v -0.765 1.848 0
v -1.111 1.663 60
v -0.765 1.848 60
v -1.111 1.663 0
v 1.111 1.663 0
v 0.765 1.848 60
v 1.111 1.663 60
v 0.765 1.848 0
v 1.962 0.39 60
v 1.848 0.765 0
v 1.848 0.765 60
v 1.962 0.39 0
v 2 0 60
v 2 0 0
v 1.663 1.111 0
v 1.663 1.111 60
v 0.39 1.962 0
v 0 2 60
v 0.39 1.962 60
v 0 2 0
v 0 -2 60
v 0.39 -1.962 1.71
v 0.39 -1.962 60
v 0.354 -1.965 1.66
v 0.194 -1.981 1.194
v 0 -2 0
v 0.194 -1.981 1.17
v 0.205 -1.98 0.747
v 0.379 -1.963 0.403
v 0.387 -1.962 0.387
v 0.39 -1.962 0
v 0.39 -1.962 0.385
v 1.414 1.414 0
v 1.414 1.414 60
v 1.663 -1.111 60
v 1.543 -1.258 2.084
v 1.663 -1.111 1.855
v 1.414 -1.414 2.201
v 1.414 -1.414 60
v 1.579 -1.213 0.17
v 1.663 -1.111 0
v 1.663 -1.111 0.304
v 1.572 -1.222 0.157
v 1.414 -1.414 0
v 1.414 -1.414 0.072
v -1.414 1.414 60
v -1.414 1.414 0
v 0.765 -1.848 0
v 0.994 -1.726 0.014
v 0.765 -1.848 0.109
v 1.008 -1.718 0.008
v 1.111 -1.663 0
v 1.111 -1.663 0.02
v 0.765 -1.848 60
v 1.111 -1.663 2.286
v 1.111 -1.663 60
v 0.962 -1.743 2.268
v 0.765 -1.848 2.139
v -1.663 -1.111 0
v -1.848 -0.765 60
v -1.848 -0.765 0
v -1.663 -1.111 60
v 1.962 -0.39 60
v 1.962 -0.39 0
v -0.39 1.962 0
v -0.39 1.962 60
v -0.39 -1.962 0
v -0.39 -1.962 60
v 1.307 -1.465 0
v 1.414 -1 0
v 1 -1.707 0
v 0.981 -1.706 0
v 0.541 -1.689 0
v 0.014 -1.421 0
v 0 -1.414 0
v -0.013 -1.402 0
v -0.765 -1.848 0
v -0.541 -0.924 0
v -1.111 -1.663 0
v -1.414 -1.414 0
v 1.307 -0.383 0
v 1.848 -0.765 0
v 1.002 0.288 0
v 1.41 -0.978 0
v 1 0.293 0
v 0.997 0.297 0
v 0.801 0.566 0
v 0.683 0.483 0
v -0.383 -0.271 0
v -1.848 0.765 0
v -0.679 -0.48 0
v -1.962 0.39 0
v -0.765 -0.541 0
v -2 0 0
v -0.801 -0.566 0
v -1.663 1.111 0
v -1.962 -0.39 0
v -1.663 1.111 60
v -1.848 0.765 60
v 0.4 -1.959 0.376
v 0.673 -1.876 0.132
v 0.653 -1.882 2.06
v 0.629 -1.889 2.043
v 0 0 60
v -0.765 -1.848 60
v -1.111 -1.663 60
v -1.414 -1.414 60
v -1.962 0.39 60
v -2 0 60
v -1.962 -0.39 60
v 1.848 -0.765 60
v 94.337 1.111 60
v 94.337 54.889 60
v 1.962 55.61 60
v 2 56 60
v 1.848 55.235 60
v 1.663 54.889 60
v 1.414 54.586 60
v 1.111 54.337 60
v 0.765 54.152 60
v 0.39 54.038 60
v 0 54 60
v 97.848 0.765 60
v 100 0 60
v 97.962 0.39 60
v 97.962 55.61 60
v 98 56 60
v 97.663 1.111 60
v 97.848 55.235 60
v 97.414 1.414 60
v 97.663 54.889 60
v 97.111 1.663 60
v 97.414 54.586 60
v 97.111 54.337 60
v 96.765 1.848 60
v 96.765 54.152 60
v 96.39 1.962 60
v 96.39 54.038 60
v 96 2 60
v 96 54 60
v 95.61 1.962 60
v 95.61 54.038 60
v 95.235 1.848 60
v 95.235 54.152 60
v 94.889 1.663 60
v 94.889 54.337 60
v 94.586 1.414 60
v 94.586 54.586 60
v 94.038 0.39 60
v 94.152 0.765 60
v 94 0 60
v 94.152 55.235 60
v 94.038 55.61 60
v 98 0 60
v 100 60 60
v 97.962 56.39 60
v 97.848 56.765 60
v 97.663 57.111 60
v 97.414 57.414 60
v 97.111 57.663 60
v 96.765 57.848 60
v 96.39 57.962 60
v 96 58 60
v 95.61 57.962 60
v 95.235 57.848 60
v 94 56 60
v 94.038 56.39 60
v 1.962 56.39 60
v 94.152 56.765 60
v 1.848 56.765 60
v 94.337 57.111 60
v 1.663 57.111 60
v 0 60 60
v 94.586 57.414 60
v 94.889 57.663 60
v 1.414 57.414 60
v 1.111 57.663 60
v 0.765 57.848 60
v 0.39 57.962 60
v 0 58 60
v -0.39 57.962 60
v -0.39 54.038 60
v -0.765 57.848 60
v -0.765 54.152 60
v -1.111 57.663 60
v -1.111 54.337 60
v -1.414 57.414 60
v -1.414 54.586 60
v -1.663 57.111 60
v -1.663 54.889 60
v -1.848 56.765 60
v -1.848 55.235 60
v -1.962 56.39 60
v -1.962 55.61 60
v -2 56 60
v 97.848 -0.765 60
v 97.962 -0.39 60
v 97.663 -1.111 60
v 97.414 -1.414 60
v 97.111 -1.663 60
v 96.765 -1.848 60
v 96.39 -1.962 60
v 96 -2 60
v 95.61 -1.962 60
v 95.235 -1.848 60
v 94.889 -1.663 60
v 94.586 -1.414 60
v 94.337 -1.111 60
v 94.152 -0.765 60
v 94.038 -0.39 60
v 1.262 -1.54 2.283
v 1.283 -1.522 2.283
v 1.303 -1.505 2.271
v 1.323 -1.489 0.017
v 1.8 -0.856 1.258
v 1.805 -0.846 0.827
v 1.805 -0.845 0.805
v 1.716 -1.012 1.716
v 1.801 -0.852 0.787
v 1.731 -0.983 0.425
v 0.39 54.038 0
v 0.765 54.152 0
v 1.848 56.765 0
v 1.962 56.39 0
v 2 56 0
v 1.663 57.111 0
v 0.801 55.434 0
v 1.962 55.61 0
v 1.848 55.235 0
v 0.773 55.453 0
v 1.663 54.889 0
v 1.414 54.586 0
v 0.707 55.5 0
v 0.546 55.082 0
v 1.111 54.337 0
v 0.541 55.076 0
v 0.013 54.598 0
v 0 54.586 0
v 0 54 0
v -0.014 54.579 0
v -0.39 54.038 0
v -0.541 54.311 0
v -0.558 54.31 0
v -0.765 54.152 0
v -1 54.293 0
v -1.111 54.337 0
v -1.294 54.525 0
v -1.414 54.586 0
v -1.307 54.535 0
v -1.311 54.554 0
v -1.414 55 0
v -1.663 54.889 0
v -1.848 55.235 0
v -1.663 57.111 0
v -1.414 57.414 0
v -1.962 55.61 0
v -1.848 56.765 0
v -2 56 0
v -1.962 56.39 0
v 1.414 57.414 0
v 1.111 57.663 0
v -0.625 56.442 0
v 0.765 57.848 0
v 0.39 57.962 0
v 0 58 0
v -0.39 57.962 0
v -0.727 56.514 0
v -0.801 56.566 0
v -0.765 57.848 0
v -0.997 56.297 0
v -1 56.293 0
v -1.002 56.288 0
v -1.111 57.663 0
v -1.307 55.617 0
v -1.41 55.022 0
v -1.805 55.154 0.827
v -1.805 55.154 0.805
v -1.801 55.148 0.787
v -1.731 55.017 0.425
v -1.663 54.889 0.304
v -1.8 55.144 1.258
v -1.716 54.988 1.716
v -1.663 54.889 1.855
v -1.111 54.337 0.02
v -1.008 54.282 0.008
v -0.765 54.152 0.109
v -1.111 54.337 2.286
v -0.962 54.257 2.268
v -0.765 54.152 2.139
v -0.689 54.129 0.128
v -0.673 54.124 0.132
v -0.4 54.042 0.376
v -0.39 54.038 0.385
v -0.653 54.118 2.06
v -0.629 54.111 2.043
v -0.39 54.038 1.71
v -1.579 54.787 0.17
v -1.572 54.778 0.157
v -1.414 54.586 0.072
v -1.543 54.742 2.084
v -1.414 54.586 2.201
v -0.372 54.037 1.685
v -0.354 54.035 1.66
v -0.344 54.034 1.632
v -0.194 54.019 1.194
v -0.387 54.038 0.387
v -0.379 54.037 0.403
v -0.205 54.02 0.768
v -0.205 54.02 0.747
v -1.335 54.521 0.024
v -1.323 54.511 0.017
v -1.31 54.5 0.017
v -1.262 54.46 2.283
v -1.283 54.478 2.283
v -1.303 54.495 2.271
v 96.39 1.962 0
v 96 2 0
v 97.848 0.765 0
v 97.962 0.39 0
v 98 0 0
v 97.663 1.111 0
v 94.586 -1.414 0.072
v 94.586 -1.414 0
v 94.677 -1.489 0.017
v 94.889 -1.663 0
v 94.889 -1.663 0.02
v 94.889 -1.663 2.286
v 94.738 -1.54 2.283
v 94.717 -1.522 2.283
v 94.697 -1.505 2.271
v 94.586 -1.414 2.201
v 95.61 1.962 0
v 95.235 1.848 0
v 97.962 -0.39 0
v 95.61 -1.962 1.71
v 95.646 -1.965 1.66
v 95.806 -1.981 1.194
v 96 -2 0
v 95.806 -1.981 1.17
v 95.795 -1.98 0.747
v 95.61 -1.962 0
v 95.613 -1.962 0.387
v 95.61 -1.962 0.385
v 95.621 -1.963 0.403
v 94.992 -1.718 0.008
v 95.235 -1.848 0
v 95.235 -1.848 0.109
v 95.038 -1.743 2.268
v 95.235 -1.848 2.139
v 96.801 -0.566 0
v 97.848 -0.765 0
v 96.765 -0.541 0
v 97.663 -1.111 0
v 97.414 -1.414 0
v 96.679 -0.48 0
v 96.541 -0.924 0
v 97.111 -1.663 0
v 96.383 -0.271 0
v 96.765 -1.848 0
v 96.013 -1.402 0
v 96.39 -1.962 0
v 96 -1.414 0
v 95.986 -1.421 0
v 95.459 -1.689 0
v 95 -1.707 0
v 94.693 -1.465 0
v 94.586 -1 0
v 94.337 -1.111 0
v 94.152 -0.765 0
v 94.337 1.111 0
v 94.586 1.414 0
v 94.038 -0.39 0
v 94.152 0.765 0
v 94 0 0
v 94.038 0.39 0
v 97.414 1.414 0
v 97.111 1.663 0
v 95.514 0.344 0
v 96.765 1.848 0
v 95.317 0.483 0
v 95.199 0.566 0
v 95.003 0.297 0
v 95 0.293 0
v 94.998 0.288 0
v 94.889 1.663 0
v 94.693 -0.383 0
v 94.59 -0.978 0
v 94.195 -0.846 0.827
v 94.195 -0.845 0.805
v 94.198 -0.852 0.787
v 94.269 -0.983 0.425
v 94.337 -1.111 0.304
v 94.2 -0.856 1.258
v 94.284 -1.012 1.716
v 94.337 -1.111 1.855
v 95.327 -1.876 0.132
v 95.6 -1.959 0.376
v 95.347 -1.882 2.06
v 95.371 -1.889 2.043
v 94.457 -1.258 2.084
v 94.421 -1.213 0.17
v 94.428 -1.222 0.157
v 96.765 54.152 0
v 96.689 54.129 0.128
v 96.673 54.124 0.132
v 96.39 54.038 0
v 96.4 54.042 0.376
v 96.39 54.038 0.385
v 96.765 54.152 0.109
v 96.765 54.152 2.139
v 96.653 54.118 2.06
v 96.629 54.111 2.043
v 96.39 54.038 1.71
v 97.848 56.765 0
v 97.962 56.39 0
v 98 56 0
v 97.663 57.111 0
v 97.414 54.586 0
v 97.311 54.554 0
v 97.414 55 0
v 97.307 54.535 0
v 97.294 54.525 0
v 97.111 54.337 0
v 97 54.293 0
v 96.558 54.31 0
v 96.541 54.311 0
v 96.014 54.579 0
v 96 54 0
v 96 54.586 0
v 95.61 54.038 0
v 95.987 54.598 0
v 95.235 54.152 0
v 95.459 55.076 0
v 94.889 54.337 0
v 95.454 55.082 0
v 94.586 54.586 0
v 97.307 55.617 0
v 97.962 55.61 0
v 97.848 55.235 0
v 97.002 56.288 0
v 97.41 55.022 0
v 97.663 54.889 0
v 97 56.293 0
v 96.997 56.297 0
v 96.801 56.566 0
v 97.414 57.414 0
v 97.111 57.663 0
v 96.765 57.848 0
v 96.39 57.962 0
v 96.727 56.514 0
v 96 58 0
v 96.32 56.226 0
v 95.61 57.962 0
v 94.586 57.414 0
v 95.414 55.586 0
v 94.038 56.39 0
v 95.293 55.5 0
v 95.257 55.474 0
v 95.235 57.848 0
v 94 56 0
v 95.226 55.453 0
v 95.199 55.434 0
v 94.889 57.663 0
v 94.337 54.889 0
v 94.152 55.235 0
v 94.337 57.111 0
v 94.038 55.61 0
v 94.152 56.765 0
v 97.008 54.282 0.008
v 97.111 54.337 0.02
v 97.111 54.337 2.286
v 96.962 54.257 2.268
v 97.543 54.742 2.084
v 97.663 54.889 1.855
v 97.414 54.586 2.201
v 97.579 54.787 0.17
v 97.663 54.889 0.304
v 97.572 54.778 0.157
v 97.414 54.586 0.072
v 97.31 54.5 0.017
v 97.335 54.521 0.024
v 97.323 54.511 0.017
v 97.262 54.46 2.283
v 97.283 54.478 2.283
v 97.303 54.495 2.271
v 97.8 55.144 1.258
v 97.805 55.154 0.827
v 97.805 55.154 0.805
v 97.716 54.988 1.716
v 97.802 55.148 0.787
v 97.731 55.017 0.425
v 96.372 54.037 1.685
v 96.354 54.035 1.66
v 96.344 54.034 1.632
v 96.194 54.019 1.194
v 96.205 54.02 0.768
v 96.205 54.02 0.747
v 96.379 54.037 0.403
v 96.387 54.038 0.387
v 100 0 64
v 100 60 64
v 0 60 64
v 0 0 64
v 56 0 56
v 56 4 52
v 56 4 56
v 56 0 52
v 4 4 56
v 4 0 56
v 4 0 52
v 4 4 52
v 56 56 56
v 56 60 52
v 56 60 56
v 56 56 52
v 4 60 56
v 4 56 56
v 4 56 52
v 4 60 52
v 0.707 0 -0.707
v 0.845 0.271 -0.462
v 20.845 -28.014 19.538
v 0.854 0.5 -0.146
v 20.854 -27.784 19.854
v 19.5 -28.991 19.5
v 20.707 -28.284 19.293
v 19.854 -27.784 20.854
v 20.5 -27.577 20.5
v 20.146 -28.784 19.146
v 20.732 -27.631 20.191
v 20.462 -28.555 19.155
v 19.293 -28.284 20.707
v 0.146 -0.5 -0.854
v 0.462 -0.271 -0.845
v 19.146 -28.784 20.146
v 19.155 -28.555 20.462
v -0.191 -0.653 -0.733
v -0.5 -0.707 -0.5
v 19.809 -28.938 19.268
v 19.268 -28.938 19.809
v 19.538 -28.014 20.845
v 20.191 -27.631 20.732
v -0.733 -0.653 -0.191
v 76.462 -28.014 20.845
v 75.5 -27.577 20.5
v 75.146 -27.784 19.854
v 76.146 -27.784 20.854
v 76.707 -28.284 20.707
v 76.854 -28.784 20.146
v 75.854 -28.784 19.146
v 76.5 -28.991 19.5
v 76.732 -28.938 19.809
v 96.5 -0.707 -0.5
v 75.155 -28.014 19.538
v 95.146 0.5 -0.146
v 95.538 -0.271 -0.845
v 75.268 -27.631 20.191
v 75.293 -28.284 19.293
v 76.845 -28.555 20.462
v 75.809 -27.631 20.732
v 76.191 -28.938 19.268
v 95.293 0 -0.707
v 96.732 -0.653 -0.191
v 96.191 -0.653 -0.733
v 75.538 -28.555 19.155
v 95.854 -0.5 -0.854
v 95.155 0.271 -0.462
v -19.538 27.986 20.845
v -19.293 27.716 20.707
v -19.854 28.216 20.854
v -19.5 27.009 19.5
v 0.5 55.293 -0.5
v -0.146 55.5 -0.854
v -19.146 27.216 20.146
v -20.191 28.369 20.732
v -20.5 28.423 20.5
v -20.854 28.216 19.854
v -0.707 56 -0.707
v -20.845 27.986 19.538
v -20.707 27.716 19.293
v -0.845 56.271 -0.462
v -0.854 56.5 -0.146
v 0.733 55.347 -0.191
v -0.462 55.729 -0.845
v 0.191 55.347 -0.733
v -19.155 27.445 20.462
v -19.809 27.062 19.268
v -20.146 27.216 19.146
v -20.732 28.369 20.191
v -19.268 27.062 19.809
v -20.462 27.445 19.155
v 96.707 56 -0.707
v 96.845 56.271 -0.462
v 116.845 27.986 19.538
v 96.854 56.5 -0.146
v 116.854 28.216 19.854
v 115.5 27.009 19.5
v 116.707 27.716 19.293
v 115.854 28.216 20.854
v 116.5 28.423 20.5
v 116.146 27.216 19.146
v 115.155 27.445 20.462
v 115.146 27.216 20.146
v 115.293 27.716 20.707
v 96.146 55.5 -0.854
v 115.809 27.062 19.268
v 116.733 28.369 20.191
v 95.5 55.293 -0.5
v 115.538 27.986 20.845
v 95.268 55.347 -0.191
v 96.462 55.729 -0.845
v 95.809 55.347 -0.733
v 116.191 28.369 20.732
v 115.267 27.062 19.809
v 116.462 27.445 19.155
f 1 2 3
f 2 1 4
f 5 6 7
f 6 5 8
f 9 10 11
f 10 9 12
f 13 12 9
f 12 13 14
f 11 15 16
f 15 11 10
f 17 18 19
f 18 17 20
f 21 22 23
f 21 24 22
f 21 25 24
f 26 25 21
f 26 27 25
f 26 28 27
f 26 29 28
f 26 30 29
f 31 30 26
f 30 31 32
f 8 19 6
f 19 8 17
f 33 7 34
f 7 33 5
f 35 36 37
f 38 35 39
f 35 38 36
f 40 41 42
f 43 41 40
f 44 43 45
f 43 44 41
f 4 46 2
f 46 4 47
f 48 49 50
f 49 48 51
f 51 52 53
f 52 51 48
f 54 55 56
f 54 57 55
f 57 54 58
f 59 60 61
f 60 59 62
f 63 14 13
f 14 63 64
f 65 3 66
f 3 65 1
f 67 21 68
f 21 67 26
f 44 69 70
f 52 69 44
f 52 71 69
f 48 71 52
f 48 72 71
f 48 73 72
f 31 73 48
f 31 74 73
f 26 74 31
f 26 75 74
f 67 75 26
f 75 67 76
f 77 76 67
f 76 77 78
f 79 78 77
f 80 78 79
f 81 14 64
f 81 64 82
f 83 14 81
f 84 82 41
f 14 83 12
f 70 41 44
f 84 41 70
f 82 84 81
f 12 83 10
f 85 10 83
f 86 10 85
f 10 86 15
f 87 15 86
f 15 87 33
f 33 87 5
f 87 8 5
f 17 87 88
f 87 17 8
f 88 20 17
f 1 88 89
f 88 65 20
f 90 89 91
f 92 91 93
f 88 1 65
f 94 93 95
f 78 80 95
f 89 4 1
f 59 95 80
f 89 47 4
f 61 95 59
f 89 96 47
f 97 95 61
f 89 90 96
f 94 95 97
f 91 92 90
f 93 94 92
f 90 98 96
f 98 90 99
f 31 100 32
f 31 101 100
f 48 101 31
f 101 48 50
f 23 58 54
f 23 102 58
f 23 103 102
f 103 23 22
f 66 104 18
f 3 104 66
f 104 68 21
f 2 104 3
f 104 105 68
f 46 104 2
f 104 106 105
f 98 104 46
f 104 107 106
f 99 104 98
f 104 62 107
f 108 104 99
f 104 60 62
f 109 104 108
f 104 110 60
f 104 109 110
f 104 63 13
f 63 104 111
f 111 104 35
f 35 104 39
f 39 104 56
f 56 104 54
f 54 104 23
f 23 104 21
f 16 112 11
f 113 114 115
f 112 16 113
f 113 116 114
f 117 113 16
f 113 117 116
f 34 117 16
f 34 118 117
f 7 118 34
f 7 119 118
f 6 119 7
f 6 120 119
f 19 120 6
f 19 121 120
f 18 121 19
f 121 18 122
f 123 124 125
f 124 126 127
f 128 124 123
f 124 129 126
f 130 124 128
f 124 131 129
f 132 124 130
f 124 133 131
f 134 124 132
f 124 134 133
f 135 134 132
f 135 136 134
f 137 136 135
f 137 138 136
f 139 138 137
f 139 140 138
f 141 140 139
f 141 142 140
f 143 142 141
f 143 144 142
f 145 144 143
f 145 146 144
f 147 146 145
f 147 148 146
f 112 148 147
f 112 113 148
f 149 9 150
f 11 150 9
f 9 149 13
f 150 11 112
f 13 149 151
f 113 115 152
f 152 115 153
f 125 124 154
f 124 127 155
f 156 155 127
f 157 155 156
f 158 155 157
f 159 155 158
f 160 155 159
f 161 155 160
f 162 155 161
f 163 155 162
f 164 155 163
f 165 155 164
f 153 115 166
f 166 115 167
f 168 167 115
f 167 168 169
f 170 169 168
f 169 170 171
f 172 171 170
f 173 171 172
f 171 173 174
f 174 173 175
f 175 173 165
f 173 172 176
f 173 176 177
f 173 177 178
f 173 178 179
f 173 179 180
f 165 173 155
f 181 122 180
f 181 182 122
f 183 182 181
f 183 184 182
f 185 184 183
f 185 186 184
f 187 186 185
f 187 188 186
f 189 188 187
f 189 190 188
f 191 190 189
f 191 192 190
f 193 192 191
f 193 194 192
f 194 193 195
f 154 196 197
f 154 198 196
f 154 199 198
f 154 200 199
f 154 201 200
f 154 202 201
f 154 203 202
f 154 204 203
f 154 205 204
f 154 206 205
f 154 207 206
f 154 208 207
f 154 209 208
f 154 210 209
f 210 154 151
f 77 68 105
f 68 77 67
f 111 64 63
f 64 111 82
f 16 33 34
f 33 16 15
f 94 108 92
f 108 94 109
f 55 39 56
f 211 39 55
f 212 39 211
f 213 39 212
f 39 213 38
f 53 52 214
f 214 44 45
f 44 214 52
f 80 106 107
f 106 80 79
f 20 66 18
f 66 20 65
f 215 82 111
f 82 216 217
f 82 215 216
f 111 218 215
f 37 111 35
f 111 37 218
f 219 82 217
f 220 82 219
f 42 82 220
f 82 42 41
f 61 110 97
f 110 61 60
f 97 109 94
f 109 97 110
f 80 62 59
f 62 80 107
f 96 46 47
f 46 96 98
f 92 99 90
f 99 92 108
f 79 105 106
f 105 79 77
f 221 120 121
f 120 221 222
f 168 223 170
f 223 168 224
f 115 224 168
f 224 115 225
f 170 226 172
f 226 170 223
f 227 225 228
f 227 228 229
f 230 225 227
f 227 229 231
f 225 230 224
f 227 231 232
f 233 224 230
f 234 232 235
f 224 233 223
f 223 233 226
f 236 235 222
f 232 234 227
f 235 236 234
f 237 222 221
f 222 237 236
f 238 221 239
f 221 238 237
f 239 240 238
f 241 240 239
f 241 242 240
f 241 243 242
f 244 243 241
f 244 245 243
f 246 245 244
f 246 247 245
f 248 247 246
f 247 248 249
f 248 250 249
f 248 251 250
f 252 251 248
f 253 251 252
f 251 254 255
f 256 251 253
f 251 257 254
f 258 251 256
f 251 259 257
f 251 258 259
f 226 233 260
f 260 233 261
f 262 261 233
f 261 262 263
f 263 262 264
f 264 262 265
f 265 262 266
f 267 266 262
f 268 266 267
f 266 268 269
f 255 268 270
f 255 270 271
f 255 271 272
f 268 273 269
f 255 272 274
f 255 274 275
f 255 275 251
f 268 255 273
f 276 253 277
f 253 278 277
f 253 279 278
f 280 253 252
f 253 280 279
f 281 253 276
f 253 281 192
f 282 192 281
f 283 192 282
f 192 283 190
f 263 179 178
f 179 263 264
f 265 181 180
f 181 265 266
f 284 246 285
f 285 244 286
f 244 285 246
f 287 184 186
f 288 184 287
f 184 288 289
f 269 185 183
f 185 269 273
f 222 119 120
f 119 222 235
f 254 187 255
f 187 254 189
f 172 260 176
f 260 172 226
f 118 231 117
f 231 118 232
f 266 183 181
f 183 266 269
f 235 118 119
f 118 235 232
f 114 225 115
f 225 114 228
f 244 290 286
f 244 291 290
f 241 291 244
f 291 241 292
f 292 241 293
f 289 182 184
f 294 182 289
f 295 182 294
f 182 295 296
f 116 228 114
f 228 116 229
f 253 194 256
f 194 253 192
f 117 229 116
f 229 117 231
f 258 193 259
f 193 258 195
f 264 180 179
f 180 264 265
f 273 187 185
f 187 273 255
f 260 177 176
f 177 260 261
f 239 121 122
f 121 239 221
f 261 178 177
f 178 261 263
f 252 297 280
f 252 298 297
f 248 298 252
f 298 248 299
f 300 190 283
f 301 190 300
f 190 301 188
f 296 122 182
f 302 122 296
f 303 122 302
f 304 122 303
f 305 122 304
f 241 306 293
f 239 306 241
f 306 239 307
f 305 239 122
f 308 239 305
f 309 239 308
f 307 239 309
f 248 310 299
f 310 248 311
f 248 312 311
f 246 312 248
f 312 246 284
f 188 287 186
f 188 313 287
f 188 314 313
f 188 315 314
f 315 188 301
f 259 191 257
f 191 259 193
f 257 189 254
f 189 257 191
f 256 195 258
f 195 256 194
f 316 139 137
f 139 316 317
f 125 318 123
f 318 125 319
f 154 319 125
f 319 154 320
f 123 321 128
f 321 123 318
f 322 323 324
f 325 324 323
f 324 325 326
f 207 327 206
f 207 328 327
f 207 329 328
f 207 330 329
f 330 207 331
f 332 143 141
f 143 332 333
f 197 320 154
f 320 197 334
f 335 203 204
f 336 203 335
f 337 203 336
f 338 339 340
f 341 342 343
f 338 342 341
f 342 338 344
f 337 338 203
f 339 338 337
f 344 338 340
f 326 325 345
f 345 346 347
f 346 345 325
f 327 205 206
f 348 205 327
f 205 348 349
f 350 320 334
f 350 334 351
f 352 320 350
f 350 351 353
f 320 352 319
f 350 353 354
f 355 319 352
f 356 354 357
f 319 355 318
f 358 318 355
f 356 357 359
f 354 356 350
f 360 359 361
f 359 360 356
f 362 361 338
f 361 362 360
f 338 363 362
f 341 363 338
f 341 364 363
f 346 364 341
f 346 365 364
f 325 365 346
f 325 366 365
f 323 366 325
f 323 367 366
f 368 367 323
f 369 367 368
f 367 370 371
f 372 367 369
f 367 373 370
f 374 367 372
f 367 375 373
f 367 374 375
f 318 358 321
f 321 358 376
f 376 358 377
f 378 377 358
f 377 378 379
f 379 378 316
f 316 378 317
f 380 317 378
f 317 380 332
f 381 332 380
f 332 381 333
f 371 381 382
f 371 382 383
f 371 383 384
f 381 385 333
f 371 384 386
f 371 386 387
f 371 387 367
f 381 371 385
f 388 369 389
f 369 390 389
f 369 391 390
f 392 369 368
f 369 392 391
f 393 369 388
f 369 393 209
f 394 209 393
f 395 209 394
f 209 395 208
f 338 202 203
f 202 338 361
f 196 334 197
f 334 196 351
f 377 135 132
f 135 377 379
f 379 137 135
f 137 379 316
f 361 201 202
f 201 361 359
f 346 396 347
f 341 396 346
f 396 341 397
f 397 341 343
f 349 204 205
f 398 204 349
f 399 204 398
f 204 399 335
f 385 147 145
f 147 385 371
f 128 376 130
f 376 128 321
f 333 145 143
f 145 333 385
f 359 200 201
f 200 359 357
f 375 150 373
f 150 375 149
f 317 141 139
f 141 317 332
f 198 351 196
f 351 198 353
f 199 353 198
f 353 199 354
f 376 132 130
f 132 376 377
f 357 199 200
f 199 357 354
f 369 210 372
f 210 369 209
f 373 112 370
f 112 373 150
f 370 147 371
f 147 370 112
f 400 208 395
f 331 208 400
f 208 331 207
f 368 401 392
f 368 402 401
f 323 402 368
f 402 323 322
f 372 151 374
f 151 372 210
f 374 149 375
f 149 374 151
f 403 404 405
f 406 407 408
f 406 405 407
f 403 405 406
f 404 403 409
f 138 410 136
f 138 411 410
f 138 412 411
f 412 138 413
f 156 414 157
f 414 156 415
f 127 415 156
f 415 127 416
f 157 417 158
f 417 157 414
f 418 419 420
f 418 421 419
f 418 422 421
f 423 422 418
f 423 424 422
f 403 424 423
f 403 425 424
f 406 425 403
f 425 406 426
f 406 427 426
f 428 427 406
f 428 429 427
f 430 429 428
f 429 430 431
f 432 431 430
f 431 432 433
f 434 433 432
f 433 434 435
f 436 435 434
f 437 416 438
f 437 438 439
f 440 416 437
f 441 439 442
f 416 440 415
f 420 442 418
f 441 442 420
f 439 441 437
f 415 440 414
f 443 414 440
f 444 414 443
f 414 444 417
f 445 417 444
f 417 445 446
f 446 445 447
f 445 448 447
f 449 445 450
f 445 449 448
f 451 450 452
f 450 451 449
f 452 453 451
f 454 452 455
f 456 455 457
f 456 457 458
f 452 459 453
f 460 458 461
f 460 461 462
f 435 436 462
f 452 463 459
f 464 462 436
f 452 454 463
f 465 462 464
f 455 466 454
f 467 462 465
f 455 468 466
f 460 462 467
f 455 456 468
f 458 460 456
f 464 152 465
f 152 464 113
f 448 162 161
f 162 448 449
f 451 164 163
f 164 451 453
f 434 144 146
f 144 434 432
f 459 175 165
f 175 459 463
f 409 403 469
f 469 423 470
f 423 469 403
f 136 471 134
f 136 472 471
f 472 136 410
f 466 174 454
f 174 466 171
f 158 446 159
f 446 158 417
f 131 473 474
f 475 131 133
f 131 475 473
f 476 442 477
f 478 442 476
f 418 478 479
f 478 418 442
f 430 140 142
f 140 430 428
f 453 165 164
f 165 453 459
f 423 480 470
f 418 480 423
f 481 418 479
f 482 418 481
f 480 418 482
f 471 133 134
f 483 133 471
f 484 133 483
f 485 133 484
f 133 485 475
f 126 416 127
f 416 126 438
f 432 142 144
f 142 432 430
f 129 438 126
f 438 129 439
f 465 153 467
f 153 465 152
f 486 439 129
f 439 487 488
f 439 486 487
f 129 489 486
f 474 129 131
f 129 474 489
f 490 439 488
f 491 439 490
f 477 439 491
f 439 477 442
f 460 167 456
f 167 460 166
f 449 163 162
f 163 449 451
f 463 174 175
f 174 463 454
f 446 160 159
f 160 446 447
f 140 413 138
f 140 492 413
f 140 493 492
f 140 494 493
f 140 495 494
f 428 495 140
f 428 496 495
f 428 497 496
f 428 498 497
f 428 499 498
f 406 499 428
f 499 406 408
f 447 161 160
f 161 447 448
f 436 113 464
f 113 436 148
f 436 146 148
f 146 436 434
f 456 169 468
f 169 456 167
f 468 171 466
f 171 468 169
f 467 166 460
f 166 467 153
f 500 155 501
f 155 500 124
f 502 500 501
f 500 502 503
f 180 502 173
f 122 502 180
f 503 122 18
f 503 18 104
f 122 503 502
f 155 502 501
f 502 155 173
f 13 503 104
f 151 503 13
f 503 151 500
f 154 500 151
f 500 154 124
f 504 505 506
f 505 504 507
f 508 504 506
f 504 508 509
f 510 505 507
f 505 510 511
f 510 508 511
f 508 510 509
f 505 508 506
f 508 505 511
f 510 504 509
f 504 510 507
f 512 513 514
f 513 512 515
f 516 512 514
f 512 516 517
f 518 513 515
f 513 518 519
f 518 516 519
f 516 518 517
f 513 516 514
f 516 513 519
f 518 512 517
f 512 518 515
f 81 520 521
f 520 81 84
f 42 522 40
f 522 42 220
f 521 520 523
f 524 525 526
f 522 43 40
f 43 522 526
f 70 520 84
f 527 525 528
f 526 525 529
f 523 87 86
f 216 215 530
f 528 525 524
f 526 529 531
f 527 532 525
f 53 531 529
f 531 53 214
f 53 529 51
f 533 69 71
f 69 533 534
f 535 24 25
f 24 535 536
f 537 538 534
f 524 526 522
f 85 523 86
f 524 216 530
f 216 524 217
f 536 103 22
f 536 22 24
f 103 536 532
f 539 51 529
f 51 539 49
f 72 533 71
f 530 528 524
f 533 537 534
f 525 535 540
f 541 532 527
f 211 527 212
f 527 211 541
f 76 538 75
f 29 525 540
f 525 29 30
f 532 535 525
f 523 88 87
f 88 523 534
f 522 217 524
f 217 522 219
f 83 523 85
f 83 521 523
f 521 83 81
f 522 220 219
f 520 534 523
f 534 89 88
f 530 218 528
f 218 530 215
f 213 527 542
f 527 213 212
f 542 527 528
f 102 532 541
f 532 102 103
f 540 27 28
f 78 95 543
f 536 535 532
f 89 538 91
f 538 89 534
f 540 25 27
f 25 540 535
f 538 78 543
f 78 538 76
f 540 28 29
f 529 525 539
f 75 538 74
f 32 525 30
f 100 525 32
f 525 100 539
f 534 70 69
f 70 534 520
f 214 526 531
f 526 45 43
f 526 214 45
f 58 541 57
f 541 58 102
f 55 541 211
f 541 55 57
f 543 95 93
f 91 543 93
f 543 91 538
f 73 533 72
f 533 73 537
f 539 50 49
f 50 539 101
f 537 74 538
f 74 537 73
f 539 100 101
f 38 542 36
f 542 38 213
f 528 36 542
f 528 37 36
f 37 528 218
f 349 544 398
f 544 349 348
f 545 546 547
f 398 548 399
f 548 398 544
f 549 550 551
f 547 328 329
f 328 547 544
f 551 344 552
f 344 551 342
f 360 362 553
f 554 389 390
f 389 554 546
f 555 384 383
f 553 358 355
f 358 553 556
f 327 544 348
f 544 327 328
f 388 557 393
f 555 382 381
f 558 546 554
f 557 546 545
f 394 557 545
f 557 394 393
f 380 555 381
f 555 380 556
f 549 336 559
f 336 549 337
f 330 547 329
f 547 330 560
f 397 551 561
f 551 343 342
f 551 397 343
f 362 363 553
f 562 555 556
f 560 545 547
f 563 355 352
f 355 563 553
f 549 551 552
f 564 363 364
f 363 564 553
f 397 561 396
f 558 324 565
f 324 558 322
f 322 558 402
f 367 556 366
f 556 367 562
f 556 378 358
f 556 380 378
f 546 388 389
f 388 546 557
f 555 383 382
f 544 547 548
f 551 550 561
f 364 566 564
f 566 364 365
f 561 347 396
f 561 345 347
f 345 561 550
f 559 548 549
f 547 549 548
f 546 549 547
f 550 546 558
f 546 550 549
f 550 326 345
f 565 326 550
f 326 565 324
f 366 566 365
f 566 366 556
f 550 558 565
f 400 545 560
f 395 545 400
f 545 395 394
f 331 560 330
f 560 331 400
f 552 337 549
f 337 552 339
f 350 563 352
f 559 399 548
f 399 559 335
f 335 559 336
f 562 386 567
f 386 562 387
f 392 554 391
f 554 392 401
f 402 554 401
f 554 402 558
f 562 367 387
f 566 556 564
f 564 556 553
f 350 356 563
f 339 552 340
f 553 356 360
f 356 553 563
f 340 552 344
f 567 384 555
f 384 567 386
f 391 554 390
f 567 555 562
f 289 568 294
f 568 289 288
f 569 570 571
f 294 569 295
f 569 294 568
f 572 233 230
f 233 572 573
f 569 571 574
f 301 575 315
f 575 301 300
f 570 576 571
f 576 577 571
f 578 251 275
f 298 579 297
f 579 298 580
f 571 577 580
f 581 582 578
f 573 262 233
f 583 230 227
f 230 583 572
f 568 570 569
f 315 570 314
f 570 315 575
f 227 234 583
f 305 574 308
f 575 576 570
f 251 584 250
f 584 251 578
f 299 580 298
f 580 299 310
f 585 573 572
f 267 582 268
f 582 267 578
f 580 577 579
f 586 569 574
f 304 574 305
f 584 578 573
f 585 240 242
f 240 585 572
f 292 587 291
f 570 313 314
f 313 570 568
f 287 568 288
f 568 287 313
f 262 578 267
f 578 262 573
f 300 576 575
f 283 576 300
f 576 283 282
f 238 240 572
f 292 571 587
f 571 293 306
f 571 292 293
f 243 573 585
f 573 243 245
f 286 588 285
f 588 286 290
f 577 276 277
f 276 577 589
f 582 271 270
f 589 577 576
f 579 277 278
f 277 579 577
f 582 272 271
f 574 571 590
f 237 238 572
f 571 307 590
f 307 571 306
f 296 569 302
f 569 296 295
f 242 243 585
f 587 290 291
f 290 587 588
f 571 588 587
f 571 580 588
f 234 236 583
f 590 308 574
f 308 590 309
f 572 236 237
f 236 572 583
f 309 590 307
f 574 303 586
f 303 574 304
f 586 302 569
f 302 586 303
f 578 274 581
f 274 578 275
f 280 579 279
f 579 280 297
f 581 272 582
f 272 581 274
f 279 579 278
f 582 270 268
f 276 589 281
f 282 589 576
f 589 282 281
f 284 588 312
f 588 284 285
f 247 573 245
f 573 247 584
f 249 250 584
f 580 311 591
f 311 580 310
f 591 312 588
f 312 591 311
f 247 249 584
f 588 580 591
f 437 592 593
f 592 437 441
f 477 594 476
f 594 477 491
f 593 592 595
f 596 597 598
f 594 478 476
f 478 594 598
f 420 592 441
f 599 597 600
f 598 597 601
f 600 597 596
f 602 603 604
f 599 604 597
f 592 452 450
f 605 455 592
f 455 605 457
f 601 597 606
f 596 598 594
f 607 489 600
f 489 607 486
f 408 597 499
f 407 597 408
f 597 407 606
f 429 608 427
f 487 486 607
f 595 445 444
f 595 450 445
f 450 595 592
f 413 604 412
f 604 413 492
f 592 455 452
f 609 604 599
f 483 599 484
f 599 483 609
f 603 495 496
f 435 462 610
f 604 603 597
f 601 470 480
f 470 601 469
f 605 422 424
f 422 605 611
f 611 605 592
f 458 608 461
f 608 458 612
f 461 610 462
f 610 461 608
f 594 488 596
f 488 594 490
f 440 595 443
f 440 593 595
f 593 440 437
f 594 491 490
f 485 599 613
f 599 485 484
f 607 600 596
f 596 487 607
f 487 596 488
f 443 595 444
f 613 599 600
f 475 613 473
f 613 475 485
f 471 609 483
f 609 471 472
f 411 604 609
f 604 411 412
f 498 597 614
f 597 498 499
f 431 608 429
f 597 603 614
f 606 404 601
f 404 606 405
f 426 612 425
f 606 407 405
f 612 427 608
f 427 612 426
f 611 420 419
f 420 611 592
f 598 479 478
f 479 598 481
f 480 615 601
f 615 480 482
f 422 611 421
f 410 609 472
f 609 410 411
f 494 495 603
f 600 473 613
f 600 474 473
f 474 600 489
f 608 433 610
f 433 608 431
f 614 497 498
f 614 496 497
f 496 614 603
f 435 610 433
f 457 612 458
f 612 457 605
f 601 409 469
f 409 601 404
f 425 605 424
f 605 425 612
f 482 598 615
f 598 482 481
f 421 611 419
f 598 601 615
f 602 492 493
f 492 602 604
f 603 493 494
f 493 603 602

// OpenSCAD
// Parameters
tabletop_length = 100;
tabletop_width = 60;
tabletop_thickness = 4;

leg_diameter = 4;
leg_height = 60;

support_bar_thickness = 4;
support_bar_length = tabletop_width - 8; // leaving space for leg diameter

diagonal_rod_diameter = 2;
diagonal_rod_length = 40; // approximate

// Modules
module tabletop_panel() {
    color("lightgray")
    cube([tabletop_length, tabletop_width, tabletop_thickness]);
}

module vertical_leg() {
    color("gray")
    cylinder(h = leg_height, r = leg_diameter / 2, $fn = 32);
}

module horizontal_support_bar() {
    color("gray")
    cube([support_bar_length, support_bar_thickness, support_bar_thickness]);
}

module diagonal_support_rod() {
    color("gray")
    rotate([45, 0, 0])
        cylinder(h = diagonal_rod_length, r = diagonal_rod_diameter / 2, $fn = 16);
}

// Assembly
module table() {
    // Tabletop
    translate([0, 0, leg_height])
        tabletop_panel();

    // Legs
    for (x = [0, tabletop_length - leg_diameter])
        for (y = [0, tabletop_width - leg_diameter])
            translate([x, y, 0])
                vertical_leg();

    // Horizontal support bars (under tabletop, front and back)
    translate([leg_diameter, 0, leg_height - tabletop_thickness - support_bar_thickness])
        horizontal_support_bar();
    translate([leg_diameter, tabletop_width - support_bar_thickness, leg_height - tabletop_thickness - support_bar_thickness])
        horizontal_support_bar();

    // Diagonal rods (approximate positioning)
    translate([0, 0, 0])
        rotate([0, 45, 0])
            diagonal_support_rod();
    translate([tabletop_length - leg_diameter, 0, 0])
        rotate([0, -45, 0])
            diagonal_support_rod();
    translate([0, tabletop_width - leg_diameter, 0])
        rotate([0, -45, 0])
            diagonal_support_rod();
    translate([tabletop_length - leg_diameter, tabletop_width - leg_diameter, 0])
        rotate([0, 45, 0])
            diagonal_support_rod();
}

// Render the table
table();
